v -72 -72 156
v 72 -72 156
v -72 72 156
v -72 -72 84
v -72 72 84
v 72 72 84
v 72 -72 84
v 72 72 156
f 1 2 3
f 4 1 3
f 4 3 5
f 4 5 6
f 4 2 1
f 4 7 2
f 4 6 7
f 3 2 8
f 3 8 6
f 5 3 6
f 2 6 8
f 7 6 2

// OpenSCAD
// file: lib/polyScrewThread_r1.scad
/*
 *    polyScrewThread_r1.scad    by aubenc @ Thingiverse
 *
 * This script contains the library modules that can be used to generate
 * threaded rods, screws and nuts.
 *
 * http://www.thingiverse.com/thing:8796
 *
 * CC Public Domain
 */


/* Example:
 * Just a 100mm long threaded rod.
 *
 * screw_thread(15,   // Outer diameter of the thread
 *               4,   // Step, traveling length per turn, also, tooth height, whatever...
 *              55,   // Degrees for the shape of the tooth 
 *                       (XY plane = 0, Z = 90, btw, 0 and 90 will/should not work...)
 *             100,   // Length (Z) of the tread
 *            PI/2,   // Resolution, one face each "PI/2" mm of the perimeter, 
 *               0);  // Countersink style:
 *                         -2 - Not even flat ends
 *                         -1 - Bottom (countersink'd and top flat)
 *                          0 - None (top and bottom flat)
 *                          1 - Top (bottom flat)
 *                          2 - Both (countersink'd)
 */
module screw_thread(od,st,lf0,lt,rs,cs)
{
    or=od/2;
    ir=or-st/2*cos(lf0)/sin(lf0);
    pf=2*PI*or;
    sn=floor(pf/rs);
    lfxy=360/sn;
    ttn=round(lt/st+1);
    zt=st/sn;

    intersection()
    {
        if (cs >= -1)
        {
           thread_shape(cs,lt,or,ir,sn,st);
        }

        full_thread(ttn,st,sn,zt,lfxy,or,ir);
    }
}

/* Example.
 * A nut for the thread rod example.
 *
 * hexa_nut(24,  // Distance between flats
 *           8,  // Height 
 *           4,  // Step height (the half will be used to countersink the ends)
 *          55,  // Degrees (same as used for the screw_thread example)
 *          15,  // Outer diameter of the thread to match
 *         0.5)  // Resolution, you may want to set this to small values
 *                  (quite high res) to minimize overhang issues
 *
 */
module hex_nut(df,hg,sth,clf,cod,crs)
{

    difference()
    {
        hex_head(hg,df);

        hex_countersink_ends(sth/2,cod,clf,crs,hg);

        screw_thread(cod,sth,clf,hg,crs,-2);
    }
}


module hex_screw(od,st,lf0,lt,rs,cs,df,hg,ntl,ntd)
{
    ntr=od/2-(st/2)*cos(lf0)/sin(lf0);

    union()
    {
        hex_head(hg,df);

        translate([0,0,hg])
        if ( ntl == 0 )
        {
            cylinder(h=0.01, r=ntr, center=true);
        }
        else
        {
            if ( ntd == -1 )
            {
                cylinder(h=ntl+0.01, r=ntr, $fn=floor(od*PI/rs), center=false);
            }
            else if ( ntd == 0 )
            {
                union()
                {
                    cylinder(h=ntl-st/2,
                             r=od/2, $fn=floor(od*PI/rs), center=false);

                    translate([0,0,ntl-st/2])
                    cylinder(h=st/2,
                             r1=od/2, r2=ntr, 
                             $fn=floor(od*PI/rs), center=false);
                }
            }
            else
            {
                cylinder(h=ntl, r=ntd/2, $fn=ntd*PI/rs, center=false);
            }
        }

        translate([0,0,ntl+hg]) screw_thread(od,st,lf0,lt,rs,cs);
    }
}

module hex_screw_0(od,st,lf0,lt,rs,cs,df,hg,ntl,ntd)
{
    ntr=od/2-(st/2)*cos(lf0)/sin(lf0);

    union()
    {
        hex_head_0(hg,df);

        translate([0,0,hg])
        if ( ntl == 0 )
        {
            cylinder(h=0.01, r=ntr, center=true);
        }
        else
        {
            if ( ntd == -1 )
            {
                cylinder(h=ntl+0.01, r=ntr, $fn=floor(od*PI/rs), center=false);
            }
            else if ( ntd == 0 )
            {
                union()
                {
                    cylinder(h=ntl-st/2,
                             r=od/2, $fn=floor(od*PI/rs), center=false);

                    translate([0,0,ntl-st/2])
                    cylinder(h=st/2,
                             r1=od/2, r2=ntr, 
                             $fn=floor(od*PI/rs), center=false);
                }
            }
            else
            {
                cylinder(h=ntl, r=ntd/2, $fn=ntd*PI/rs, center=false);
            }
        }

        translate([0,0,ntl+hg]) screw_thread(od,st,lf0,lt,rs,cs);
    }
}

module thread_shape(cs,lt,or,ir,sn,st)
{
    if ( cs == 0 )
    {
        cylinder(h=lt, r=or, $fn=sn, center=false);
    }
    else
    {
        union()
        {
            translate([0,0,st/2])
              cylinder(h=lt-st+0.005, r=or, $fn=sn, center=false);

            if ( cs == -1 || cs == 2 )
            {
                cylinder(h=st/2, r1=ir, r2=or, $fn=sn, center=false);
            }
            else
            {
                cylinder(h=st/2, r=or, $fn=sn, center=false);
            }

            translate([0,0,lt-st/2])
            if ( cs == 1 || cs == 2 )
            {
                  cylinder(h=st/2, r1=or, r2=ir, $fn=sn, center=false);
            }
            else
            {
                cylinder(h=st/2, r=or, $fn=sn, center=false);
            }
        }
    }
}

module full_thread(ttn,st,sn,zt,lfxy,or,ir)
{
  if(ir >= 0.2)
  {
    for(i=[0:ttn-1])
    {
        for(j=[0:sn-1])
			assign( pt = [	[0,                  0,                  i*st-st            ],
                        [ir*cos(j*lfxy),     ir*sin(j*lfxy),     i*st+j*zt-st       ],
                        [ir*cos((j+1)*lfxy), ir*sin((j+1)*lfxy), i*st+(j+1)*zt-st   ],
								[0,0,i*st],
                        [or*cos(j*lfxy),     or*sin(j*lfxy),     i*st+j*zt-st/2     ],
                        [or*cos((j+1)*lfxy), or*sin((j+1)*lfxy), i*st+(j+1)*zt-st/2 ],
                        [ir*cos(j*lfxy),     ir*sin(j*lfxy),     i*st+j*zt          ],
                        [ir*cos((j+1)*lfxy), ir*sin((j+1)*lfxy), i*st+(j+1)*zt      ],
                        [0,                  0,                  i*st+st            ]	])
        {
            polyhedron(points=pt,
              		  triangles=[	[1,0,3],[1,3,6],[6,3,8],[1,6,4],
											[0,1,2],[1,4,2],[2,4,5],[5,4,6],[5,6,7],[7,6,8],
											[7,8,3],[0,2,3],[3,2,7],[7,2,5]	]);
        }
    }
  }
  else
  {
    echo("Step Degrees too agresive, the thread will not be made!!");
    echo("Try to increase de value for the degrees and/or...");
    echo(" decrease the pitch value and/or...");
    echo(" increase the outer diameter value.");
  }
}

module hex_head(hg,df)
{
	rd0=df/2/sin(60);
	x0=0;	x1=df/2;	x2=x1+hg/2;
	y0=0;	y1=hg/2;	y2=hg;

	intersection()
	{
	   cylinder(h=hg, r=rd0, $fn=6, center=false);

		rotate_extrude(convexity=10, $fn=6*round(df*PI/6/0.5))
		polygon([ [x0,y0],[x1,y0],[x2,y1],[x1,y2],[x0,y2] ]);
	}
}

module hex_head_0(hg,df)
{
    cylinder(h=hg, r=df/2/sin(60), $fn=6, center=false);
}

module hex_countersink_ends(chg,cod,clf,crs,hg)
{
    translate([0,0,-0.1])
    cylinder(h=chg+0.01, 
             r1=cod/2, 
             r2=cod/2-(chg+0.1)*cos(clf)/sin(clf),
             $fn=floor(cod*PI/crs), center=false);

    translate([0,0,hg-chg+0.1])
    cylinder(h=chg+0.01, 
             r1=cod/2-(chg+0.1)*cos(clf)/sin(clf),
             r2=cod/2, 
             $fn=floor(cod*PI/crs), center=false);
}
// file: lib/moreShapes.scad
// moreShapes library
// 2D and 3D utility shape functions
// Author: Damian Axford
// Updated:  8 Apr 2013
// Public Domain

// some borrowed from nophead / Mendel90 utils.scad

//include <polyholes.scad>
//include <teardrops.scad>

// fudge
eta = 0.01;


module line(start, end, r) {
	hull() {
		translate(start) sphere(r=r);
		translate(end) sphere(r=r);
	}
}

module roundedRect(size, radius, center=false) {
	x = size[0];
	y = size[1];
	z = size[2];
	
	translate([center?-x/2:0, center?-y/2:0, center?-z/2:0])
	linear_extrude(height=z) 
	hull() {
		translate([radius, radius, 0])
		circle(r=radius);
		
		translate([x - radius, radius, 0])
		circle(r=radius);
		
		translate([x - radius, y - radius, 0])
		circle(r=radius);
		
		translate([radius, y - radius, 0])
		circle(r=radius);
	}
}

module roundedRectX(size, radius, center=false) {
	// X-axis aligned roundedRect
	translate([0,0,center?0:size[2]]) rotate([0,90,0]) roundedRect([size[2],size[1],size[0]], radius, center);
}

module roundedRectY(size, radius, center=false) {
	// Y-axis aligned roundedRect
	translate([0,0,center?0:size[2]]) rotate([-90,0,0]) roundedRect([size[0],size[2],size[1]], radius, center);
}

module allRoundedRect(size, radius, center=false) {
	// lazy implementation - must do better
	// runs VERY slow
	translate([center?-size[0]/2:0, center?-size[1]/2:0, center?-size[2]/2:0])
	hull() {
		for (x=[0,size[0]], y=[0,size[1]], z=[0,size[2]]) {
			translate([x,y,z]) sphere(r=radius);
		}
	}
}



module torusSlice(r1, r2, start_angle, end_angle, convexity=10, r3=0, $fn=64) {
	rx = r1 + r2;
    ry = rx;
    trx = rx* sqrt(2) + 1;
    try = ry* sqrt(2) + 1;
    a0 = (4 * end_angle + 0 * 360 - start_angle) / 4;
    a1 = (3 * end_angle + 1 * 360 - start_angle) / 4;
    a2 = (2 * end_angle + 2 * 360 - start_angle) / 4;
    a3 = (1 * end_angle + 3 * 360 - start_angle) / 4;
    a4 = (0 * end_angle + 4 * 360 - start_angle) / 4;
    if(end_angle > start_angle)
        difference() {
			rotate_extrude(convexity=convexity, $fn=64) translate([r1,0,0]) difference() {
				circle(r2, $fn=30);
				circle(r3, $fn=30);
			}

			translate([0,0,-r2-1])
			linear_extrude(height=2*r2+2)
			polygon([
				[0,0],
				[trx * cos(a0), try * sin(a0)],
				[trx * cos(a1), try * sin(a1)],
				[trx * cos(a2), try * sin(a2)],
				[trx * cos(a3), try * sin(a3)],
				[trx * cos(a4), try * sin(a4)],
				[0,0]
			]);
    }
}


module trapezoid(a,b,h,aOffset=0,center=false) {
	// lies in x/y plane
	// edges a,b are paralle to x axis
	// h is in direction of y axis	
	// b is anchored at origin, extends along positive x axis
	// a is offset along y by h, extends along positive x axis
	// a if offset along x axis, from y axis, by aOffset
	// centering is relative to edge b

	translate([center?-b/2:0, center?-h/2:0, 0]) 
	polygon(points=[	[0,0],
					[aOffset,h],
					[aOffset + a, h],
					[b,0]]); 
}

module trapezoidPrism(a,b,h,aOffset,height,center=false) {
	translate([0,0, center?-height/2:0]) linear_extrude(height=height) trapezoid(a,b,h,aOffset,center);
}


module arrangeShapesOnAxis(axis=[1,0,0], spacing=50) {
	for (i=[0:$children-1]) {
		translate([spacing * axis[0] *i,
					spacing * axis[1]*i,
					spacing * axis[2]*i]) children(i);
	}
}

module arrangeShapesOnGrid(xSpacing=50, ySpacing=50, cols=3, showLocalAxes=false) {	
	// layout is cols, rows
	for (i=[0:$children-1]) {
		translate([(i - floor(i / cols)*cols) * xSpacing, floor(i / cols) * ySpacing, 0]) {
			children(i);

			if (showLocalAxes) {
				color("red") line([0,0,0], [xSpacing/2,0,0], 0.2);
				color("green") line([0,0,0], [0, ySpacing/2,0], 0.2);
				color("blue") line([0,0,0], [0, 0,xSpacing], 0.2);
			}
		}
	}
}

module slot(h, r, l, center = true)
    linear_extrude(height = h, convexity = 6, center = center)
        hull() {
            translate([l/2,0,0])
                circle(r = r, center = true);
            translate([-l/2,0,0])
                circle(r = r, center = true);
        }



module fillet(r, h) {
	// ready to be unioned onto another part, eta fudge included
	// extends along x, y, z

    translate([r / 2, r / 2, 0])
        difference() {
            cube([r + eta, r + eta, h], center = true);
            translate([r/2, r/2, 0])
                cylinder(r = r, h = h + 1, center = true);
        }
}

module right_triangle(width, height, h, center = true) {
    linear_extrude(height = h, center = center)
        polygon(points = [[0,0], [width, 0], [0, height]]);
}

module rounded_square(w, h, r)
{
	// 2D
    union() {
        square([w - 2 * r, h], center = true);
        square([w, h - 2 * r], center = true);
        for(x = [-w/2 + r, w/2 - r])
            for(y = [-h/2 + r, h/2 - r])
                translate([x, y])
                    circle(r = r);
    }
}

//
// Cylinder with rounded ends
//
module rounded_cylinder(r, h, r2, roundBothEnds=false)
{
    rotate_extrude()
        union() {
            square([r - r2, h]);
            translate([0,roundBothEnds?r2:0,0]) square([r, roundBothEnds? h-2*r2 : h - r2]);
            translate([r - r2, h - r2])
                circle(r = r2);
			if (roundBothEnds) {
				translate([r - r2, r2])
                circle(r = r2);
			}
			
        }
}

module sector(r, a, h, , center = true) {
    linear_extrude(height = h, center = center)
        intersection() {
            circle(r = r, center = true);
                polygon(points = [
                    [0, 0],
                    [2 * r * cos(a / 2),  2 * r * sin(a / 2)],
                    [2 * r * cos(a / 2), -2 * r * sin(a / 2)],
                ]);
        }
}

module tube(or, ir, h, center = true, $fn=30) {
    linear_extrude(height = h, center = center, convexity = 5)
        difference() {
            circle(or, $fn=$fn);
            circle(ir, $fn=$fn);
        }
}



module moreShapesExamples() {
	arrangeShapesOnGrid(xSpacing=100, ySpacing=80, cols=4, showLocalAxes=true) {
		roundedRect([50,30,20], 5);
		roundedRectX([50,30,20], 5);
		roundedRectY([50,30,20], 5);
		//allRoundedRect([50,30,20], 5);

		roundedRect([50,30,20], 5, true);
		roundedRectX([50,30,20], 5, true);
		roundedRectY([50,30,20], 5, true);
		//allRoundedRect([50,30,20], 5, true);


		torusSlice(50, 6, 0, 120, $fn=64);
		torusSlice(r1=50, r2=6, r3=4, start_angle=0, end_angle=120, $fn=64);   // define r3 for a hollow torus

		trapezoidPrism(20,50,20,10,20);
		trapezoidPrism(20,50,20,10,20,true);

		// to be differenced
		slot(h=20, r=5, l=10);

		// to be unioned
		fillet(r=5, h=50);

		right_triangle(width=30, height=20, h=10, center = false);
		rounded_square(w=30, h=20, r=5);
		rounded_cylinder(r=10, h=50, r2=5, roundBothEnds=false);
		rounded_cylinder(r=10, h=50, r2=5, roundBothEnds=true);
		
		// same as extruded pieSlice
		sector(r=10, a=70, h=20, center = false);

		tube(or=10, ir=5, h=50, center = false);
	}
}

moreShapesExamples();
// file: WINDGAUGE_R06.scad
$fn=40; // model faces resolution.
include <../configuration.scad>
include <./lib/polyScrewThread_r1.scad>

PI=3.141592;


//Držák magnetu

module WINDGAUGE01A_R06()
{
    //valec se zavitem
    union()  
        {
        
            
       translate([0,0,S01_sila_materialu/2])           
            cylinder (h = S01_sila_materialu+0.01, r=(LO_horni_prumer+0.2)/2, center = true, $fn=100);      
        
            
            cylinder (h = LO_vyska_horni_doraz-R03_mezera_mezi_statorem_rotorem+0.01, r=(LO_horni_prumer+0.2)/2, $fn=100);            
                         
         
             translate([0,0,LO_vyska_horni_doraz-R03_mezera_mezi_statorem_rotorem])
              
          
          
 translate([0,0,-0.005])
                
                cylinder(h=2*S01_sila_materialu+0.01,r1=(LO_horni_prumer+0.2)/2, r2=(LO_horni_prumer+0.2)/2-2*S01_sila_materialu,  center=false);  
             

   
        }
  }




WINDGAUGE01A_R06();

 
// file: lib/copyFunctions.scad
// copyFunctions.scad - library for copy versions of mirror/rotate/translate
// May 2019

// general use: just like normal version of given function

module rotate_copy(v=[1,0,0])
{
    children();
    rotate(v) children();
}

module mirror_copy(v=[1,0,0])
{
    children();
    mirror(v) children();
}

module translate_copy(v=[1,0,0])
{
    children();
    translate(v) children();
}
// file: lib/curvedPipe.scad
use <vector.scad>   // Author: Juan Gonzalez-Gomez, GPL
use <maths.scad>    // Author: William A Adams, Public Domain
use <moreShapes.scad>    // Author: Damian Axford, with elements by nophead, Public Domain

fudge = 0.01;

// result is u-v
function subv(u,v) = [u[0]-v[0], u[1]-v[1], u[2]-v[2]];

function vec3_from_vec4(v) = [v[0], v[1], v[2]];
function vec4_from_vec3(v) = [v[0], v[1], v[2], 1];

module pipeOrientate(v1,v2)
{
	// calc rotation for v1	
	v1axis = v1[0]==0 && v1[1] == 0 ? [0,1,0] : cross([0,0,1], v1);    // condition accounts for v1 being aligned with z axis
	v1ang = anglev([0,0,1], v1);
		
	v1axisLen = mod(v1axis);
	
	// v2 as vec4	
	vec2 = vec4_from_vec3(v2);
	
	// make quat to reverse the final rotation
	qRev = quat(v1axis, v1ang);
	qRevMat = quat_to_mat4(qRev);

	// rotate v2 by qRev
	vec2Rev = v1axisLen>0 ? vec4_mult_mat4(vec2, qRevMat) : vec2;

	// look and x,y components of vec2Rev and calc rot about z
	theta = atan2(vec2Rev[1], vec2Rev[0]);
	
	// complete the two rotations
    rotate(a=v1ang, v=v1axis)
	  rotate(a=theta<0 || theta>0?theta:0, v=[0,0,1])
         children(0);
}

module pipeCurve(points,point,radii, od,id,isLastSegment=false) {
	pre = points[point-1];
	start = points[point];
	mid = points[point+1];
	end = points[point+2];

	post = points[point+3];
	preR = radii[point-1];
	r = radii[point];	
	postR = radii[point+1];

	dir1 = subv(mid,start);
	dir2 = subv(end,mid);
	l1 = mod(dir1);
	l2 = mod(dir2);
	ang = anglev(dir1,dir2);

	preDir = pre? subv(start,pre) : dir1;
	preAng = pre? anglev(preDir, dir1) : 0;
	preInset = pre? preR * tan(preAng/2) : 0;
	
	postDir = post? subv(post,end) : dir2;
	postAng = post? anglev(dir2, postDir) : 0;
	postInset = post? postR * tan(postAng/2) : 0;
	
	dir1u = unitv(dir1);
	inset = r * tan(ang/2);
	rStart = start + (l1-inset)*dir1u;
	
	// start
	translate(start) orientate(dir1) translate([0,0,preInset]) tube(h=l1-preInset-inset,or=od/2, ir=id/2, center=false);

	//end
	translate(mid) orientate(dir2) translate([0,0,inset]) tube(h=l2-postInset-inset,or=od/2, ir=id/2, center=false);
	
	// curved section
	// nb: torus slice always starts at x axis and goes counter clockwise around z
	translate(rStart) 
	pipeOrientate(dir1,dir2)
	rotate([0,0,180])  // rotate to lie along x
	rotate([90,0,0]) // flip up
	translate([-r,0,0]) torusSlice(r1=r, r2=od/2, r3=id/2, start_angle=0, end_angle=ang);
}


module curvedPipe(points, segments, radii, od, id) {
	union() {
		for (point = [0:segments-2]) 
			pipeCurve(points,point,radii,od,id);
	}
}



//test pieces
if (true) {
	curvedPipe([ [0,0,0],
				[100,0,0],
				[100,100,0],
				[50,100,100],
				[50,100,150],
				[0,100,50],
				[0,0,0],
				[50,0,50]
			   ],
	            7,
				[70,30,30,6,50,30],
			    10,
				8);
	
	
	rotate([0,0,180]) curvedPipe([ [0,0,0],
				[100,0,0],
				[100,100,0],
				[100,100,100],
				[0,100,100],
				[0,100,0],
				[0,0,0],
				[50,0,50]
			   ],
	            7,
				[70,30,30,6,50,30],
			    10,
				8);
}
// file: lib/naca4.scad
// Naca4.scad - library for parametric airfoils of 4 digit NACA series
// Code: Rudolf Huttary, Berlin
// June 2015
// commercial use prohibited


// general use: for more examples refer to sampler.scad
// naca = naca digits or 3el vector  (default = 12 or [0, 0, .12])
// L    = chord length [mm]      (default= 100)
// N    = # sample points        (default= 81)
// h    = height [mm]            (default= 1)
// open = close at the thin end? (default = true)
// two equivalent example calls
 airfoil(naca = 2408, L = 60, N=1001, h = 30, open = false);
// airfoil(naca = [.2, .4, .32], L = 60, N=1001, h = 30, open = false);

module help()
{
  echo(str("\n\nList of signatures in lib:\n=================\n",
  "module airfoil(naca=2412, L = 100, N = 81, h = 1, open = false) - renders airfoil object\n",
  "module airfoil(naca=[.2, .4, .12], L = 100, N = 81, h = 1, open = false) - renders airfoil object using percentage for camber,  camber distance and thicknes\n",
  "function airfoil_data(naca=12, L = 100, N = 81, open = false)\n",
  "=================\n"));
}

help();
// this is the object
module airfoil(naca=12, L = 100, N = 81, h = 1, open = false)
{
  linear_extrude(height = h)
  polygon(points = airfoil_data(naca, L, N, open));
}

module hollow_airfoil(naca=12, L = 100, N = 81, h = 1, open = false, wall_thickness = 1)
{
    if (open){
        linear_extrude(height = h)

        if (wall_thickness>0){
            difference(){
                polygon(points = airfoil_data(naca, L, N, false));
                offset(delta = - wall_thickness, chamfer = false) polygon(points = airfoil_data(naca, L, N, open = false));
            }
        }
        else{
            difference(){
                offset(delta = - wall_thickness, chamfer = false) polygon(points = airfoil_data(naca, L, N, open = false));
                polygon(points = airfoil_data(naca, L, N, false));
            }
        }
    }
    else{

        linear_extrude(height = abs(wall_thickness))
            polygon(points = airfoil_data(naca, L, N, false));

        linear_extrude(height = h)
            difference(){
                polygon(points = airfoil_data(naca, L, N, open));
                offset(delta = - wall_thickness) polygon(points = airfoil_data(naca, L, N, open = false));
            }

        translate([0,0, h - wall_thickness])
            linear_extrude(height = abs(wall_thickness))
                polygon(points = airfoil_data(naca, L, N, false));

    }
}


// this is the main function providing the airfoil data
function airfoil_data(naca=12, L = 100, N = 81, open = false) =
  let(Na = len(naca)!=3?NACA(naca):naca)
  let(A = [.2969, -0.126, -.3516, .2843, open?-0.1015:-0.1036])
  [for (b=[-180:360/(N):179.99])
    let (x = (1-cos(b))/2)
    let(yt = sign(b)*Na[2]/.2*(A*[sqrt(x), x, x*x, x*x*x, x*x*x*x]))
    Na[0]==0?L*[x, yt]:L*camber(x, yt, Na[0], Na[1], sign(b))];


function trailing_edge_angle(naca=12, open = false) =
  let(Na = len(naca)!=3?NACA(naca):naca)
  let(A = [.2969, -0.126, -.3516, .2843, open?-0.1015:-0.1036])
  let (x =0.999)  // set x near to airfoil trailing edge
  let(yt = Na[2]/.2*(A*[sqrt(x), x, x*x, x*x*x, x*x*x*x])) // calculate distance from x-axis at previously set position
  atan2(yt,1-x);  // calculate angle of triangle between end of airfoil. The triange height corresponds to previously calculated distance from x-axis

function surface_angle(x = 0.5, naca=12, open = false) =
  let(Na = len(naca)!=3?NACA(naca):naca)
  let(A = [0.2969, -0.126, -0.3516, 0.2843, open?-0.1015:-0.1036])
  let(dy = Na[2]/0.2*(A*[(1/2)*(1/sqrt(x)), 1, 2*x, 3*x*x, 4*x*x*x])) // calculate derivative of airfoil function at the x point
  atan(dy);  // calculate  the angle from function derivative

function surface_distance(x = 0.5, naca=12, open = false) =
  let(Na = len(naca)!=3?NACA(naca):naca)
  let(A = [0.2969, -0.126, -0.3516, 0.2843, open?-0.1015:-0.1036])
  Na[2]/.2*(A*[sqrt(x), x, x*x, x*x*x, x*x*x*x]); // calculate distance from x-axis at previously set position

// helper functions
function NACA(naca) =
  let (M = floor(naca/1000))
  let (P = floor((naca-M*1000)/100))
  [M/100, P/10, floor(naca-M*1000-P*100)/100];

function camber(x, y, M, P, upper) =
  let(yc = (x<P)?M/P/P*(2*P*x-x*x): M/(1-P)/(1-P)*(1 - 2*P + 2*P*x -x*x))
  let(dy = (x<P)?2*M/P/P*(P-x):2*M/(1-P)/(1-P)*(P-x))
  let(th = atan(dy))
  [upper ? x - y*sin(th):x + y*sin(th), upper ? yc + y*cos(th):yc - y*cos(th)];
// file: ../configuration.scad
//$fn=40; // model faces resolution.

//COMMON PARAMETERS
global_clearance = 0.5; // additional space where needed due to printer precision
layer_thickness = 0.3; // layer which is going to be removed after printing
//M3 x 12 Bolt
M3_nut_diameter = 6.6;
M3_nut_height = 2.7;
M3_bolt_diameter = 3.2;
M3_bolt_head_height = 3;
M3_bolt_length = 12;
//M5 Bolt
M5_bolt_diameter = 5.5;
M5_nut_height = 4.5;
M5_nut_diameter = 9.4;
//M6 Bolt
M6_bolt_diameter = 6.5;
M6_nut_height = 4.9;
M6_nut_diameter = 11.8;


//----------------------------------------------------------------
//----------------------------------------------------------------
//WINDGAUGE02A_S02 - Parametry pro hlavni valec anemometru
S01_hloubka_zavitu=4;
S01_vyska=110; //80
S01_prumer_vnitrni=50;
S01_sila_materialu=1.2;
S01_vyska_horni_zavit=10;
S01_vyska_spodniho_zavitu=10;
S01_sila_drzaku_RJ11=3; //vyška drážky
S01_hrana_A_RJ11=12.3;
S01_hrana_B_RJ11=19;
S01_tolerance_zavit=1.5;

//Rozměry ložiska se závity
//LO_spodni_prumer=22;
LO_spodni_prumer=17.2; //bez krytu
LO_vyska_bez_krytu=15;
LO_doraz_prumer=44.3;
LO_horni_prumer=7.7;
LO_vyska_spodni_doraz=5;
LO_vyska_horni_doraz=9;
LO_vyska_dorazu=0;





//Obecné parametry
prumer_osicky=5.1;



//Parametry loziska
lozisko_prumer_vnitrni=4.9;
lozisko_prumer_vnejsi=16.1;
lozisko_vyska=5;
lozisko_prekryv=1.5;

//Parametry magnetu
magnet_prumer=6.3;
magnet_vyska=5;
magnet_zapusteni=2;
magnet_tolerance_prumeru=0.2;

//Parametry sroubu
prumer_sroubu=3.4;
prumer_hlavy_sroubu=8.2;
vyska_hlavy_sroubu=4.3;
vyska_matky=3;
sirka_matky=6.7;

sirka_matky_tol=0.175;
prumer_orechu=10;

//WINDGAUGE02A_R01 //pro lopatku
L01_hrana_drzaku_a=10;
L01_hrana_drzaku_b=3;
L01_delka_uchytu=19;
L01_prumer_lopatky=40;
L01_sila_materialu_lopatky=0.9;

//WINDGAUGE02A_D02 Anemometer holder
//   | |   Top ring with Screw-thread
//  /   \  Body
// |_____| Base
D02_magnet_base_height = 4.5 + 1.5*global_clearance; // HS-13 M5 magnet height without bolt
D02_magnet_diameter = 16.1 + global_clearance; // HS-13 M5 magnet diameter
D02_flat_magnet_diameter = 18.1 + global_clearance; // HS-13 M5 magnet diameter
D02_wall_thickness = 5; // body wall thickness
D02_connector_spacing = 40; // main body cut-through for connectors
D02_base_diameter = 140; // diameter of holder base
D02_base_height = max(M6_nut_height + 1.5,
                      D02_magnet_base_height + M5_nut_height/2 + 1.5); // height of holder base
D02_body_height = 60 - D02_base_height; // height of body between base and top ring
D02_screw_diameter = S01_prumer_vnitrni - S01_tolerance_zavit; // scew-thread diameter based on stand S01
D02_thread_height = S01_vyska_spodniho_zavitu; // screw-thread height based on stand S01
D02_top_ring_inner_diameter = D02_screw_diameter - 6; // inner diameter of top ring
D02_top_ring_outer_diameter = D02_screw_diameter + 4; // outer diameter of top ring
D02_top_ring_height = D02_thread_height + 5; // height of top ring
D02_total_height = D02_base_height + D02_body_height + D02_top_ring_height; // total height of anemometer holder
// Following parameters are obsolete, maintained only for compatibility.
D01_material_pod_zavitem = D02_top_ring_height - D02_thread_height;
D01_material_za_zavitem = D02_screw_diameter - D02_top_ring_inner_diameter;
D01_material_pred_zavitem = D02_top_ring_outer_diameter - D02_screw_diameter;
D01_polomer_zakladny = D02_base_diameter/2;
D01_sila_setny_spodniho_drzaku=D02_wall_thickness;
D01_vyska_spodni_casti_drzaku = D02_body_height + D02_base_height;
D01_sirka_otvoru_pro_konektor = D02_connector_spacing;
D01_ucyhtna_matice_material_nad = D02_base_height - M6_nut_height;
D01_uchytna_matice_vyska = M6_nut_height;
D01_uchytna_matice_sirka = M6_nut_diameter;
D01_uchytny_sroub_prumer = M6_bolt_diameter;

// Following parameters are actually used in D01 model.
//WINDGAUGE02A_D02 //uchyt na sloup
D02_sila_materialu=6;
D02_vyska_uchytky=40;
D02_prumer_obruby=27; // 3/4 trubka
D02_delka_celeho_uchytu=60;
D02_dotahova_vzdalenost=1.5;
D02_prumer_uchytneho_sroubu=4.2;
D02_sirka_matky=9.1; //pro M4
D02_vyska_matky=3;


//WINDGAUGE02A_R01 //rotor s prekritim statoru
R01_vyska_prekryti_statoru=10;
R01_sila_materialu_pro_prekriti=1.3;
R01_mezera_mezi_statorem_rotorem=3;

//WINDGAUGE02A_R03 //drzak magnetu
R05_sirka_matky=10;



R03_prumer_zavitu=40;
R04_zavit_vyska=5;
R02_zavit_vyska=10;
R01_zavit_vyska=5;
R03_mezera_mezi_statorem_rotorem=3;

R02_delka_kridla=45;
R02_vzdalenost_der=25;

R02_delka_vyrovnnavaci_tyce=35;
R02_hrana_drzaku=14;
R02_sila_materialu_pod_tyci=5;
R02_sila_materialu_kridla=1.2;
R02_sila_materialu_kridla_tolerance=0.3;

R05_vyska_kridla=100;
R05_delka_kridla=100;


//S04
I2CDIFF01A_sirka_kon=16.5; //sirka konektoru
I2CDIFF01A_vyska_kon=13.5; //vyska konektoru
I2CDIFF01A_sirka_mod_otvory=4; //kolik modul zabira der
I2CDIFF01A_vyska_PCB=2; //vyska mezi albase a konektorem
S04_sila_materialu=2;

//S04_USBI2C01A
USBI2C01A_sirka_kon=12; //sirka konektoru
USBI2C01A_vyska_kon=11; //vyska konektoru
USBI2C01A_sirka_mod_otvory=3; //kolik modul zabira der
USBI2C01A_vyska_PCB=2; //vyska mezi albase a konektorem


//WINDGAUGE03A_R03 // Venturi tube
R03_wide_D = 36; // Venturi wide tube inner diameter
R03_narrow_D = R03_wide_D/1.4; // Venturi narrow tube inner diameter
R03_global_clearance = global_clearance; // additional space where needed due to printer precision
R03_PCB_top_rim = 5.5; // vertical distance from top of tube to top of PCB
R03_PCB_height = 41; // height of PCB casing - if changed check casing
R03_PCB_width = 14; // width of PCB casing - if changed check casing
R03_PCB_depth = 3.7; // depth of PCB casing - if changed check casing
R03_PCB_connector_overlay = 2.5; // additional depth of PCB casing on connectors side - if changed check casing
R03_PCB_elevation = 2; // additional elevation of PCB for waterproofing
R03_air_tube_diameter = 2; // air tubes diameter
R03_sensor_housing_offset = 15;  // distance from venturi tube height to sensor housing drop
R03_sensor_offset = 2.2;  // SDP33 distance from PCB border to sensor
R03_sensor_pitch = 4.3;  // SDP33 distance between sensors
R03_sensor_diameter = 3.5;  // SDP33 sensor diameter
R03_sensor_depth = 2.5;  // SDP33 sensor depth
R03_slip_ring_offset = 0; // slip-ring offset from tube center
R03_venturi_tube_height = 150;  // Venturi tube height (limited by max print size)
R03_wall_thickness = 3; // Venturi tube wall thickness
R03_sealing_ring_thickness = 1.5; // sealing ring size
R03_fin_width = 0.8; // width of vertical stabilizator
R03_fin_length = 150; // length of vertical stabilizator
R03_fin_height = 150; // height of vertical stabilizator
R03_fin_holder_width = M3_bolt_length + M3_nut_height;
R03_fin_holder_height = M3_nut_diameter + 2*R03_wall_thickness;
R03_fin_holder_depth = R03_wide_D/2 + R03_fin_holder_height;
R03_balance_shelf_width = 20; // width of shelf for balance weights
R03_balance_shelf_height = 10; // height of shelf for balance weights
// main file
include <../configuration.scad>
use <./lib/naca4.scad>
use <./lib/curvedPipe.scad>
use <./lib/copyFunctions.scad>
use <WINDGAUGE_R06.scad>

draft = true;
$fn = draft ? 20 : 100;
slip_ring_z = 2*R03_venturi_tube_height - R03_slip_ring_offset - 6*R03_wide_D;
// length of tube narrowing part
intake_length = ((R03_wide_D - R03_narrow_D) / 2) / tan(23 / 2);
// length of tube widening part
exhaust_length = ((R03_wide_D - R03_narrow_D) / 2) / tan(15 / 2);
// length of wide tube part on bottom and top
wide_body_length = (R03_venturi_tube_height - intake_length - exhaust_length
                    - R03_narrow_D) / 2;

module WINDGAUGE03A_R03_modificator(draft = true)
{
  translate([-2*R03_wide_D, -2*R03_wide_D, slip_ring_z])
      cube([4*R03_wide_D, 4*R03_wide_D, 2*R03_wide_D]);
}


// weight ballancing modificator
WINDGAUGE03A_R03_modificator();
